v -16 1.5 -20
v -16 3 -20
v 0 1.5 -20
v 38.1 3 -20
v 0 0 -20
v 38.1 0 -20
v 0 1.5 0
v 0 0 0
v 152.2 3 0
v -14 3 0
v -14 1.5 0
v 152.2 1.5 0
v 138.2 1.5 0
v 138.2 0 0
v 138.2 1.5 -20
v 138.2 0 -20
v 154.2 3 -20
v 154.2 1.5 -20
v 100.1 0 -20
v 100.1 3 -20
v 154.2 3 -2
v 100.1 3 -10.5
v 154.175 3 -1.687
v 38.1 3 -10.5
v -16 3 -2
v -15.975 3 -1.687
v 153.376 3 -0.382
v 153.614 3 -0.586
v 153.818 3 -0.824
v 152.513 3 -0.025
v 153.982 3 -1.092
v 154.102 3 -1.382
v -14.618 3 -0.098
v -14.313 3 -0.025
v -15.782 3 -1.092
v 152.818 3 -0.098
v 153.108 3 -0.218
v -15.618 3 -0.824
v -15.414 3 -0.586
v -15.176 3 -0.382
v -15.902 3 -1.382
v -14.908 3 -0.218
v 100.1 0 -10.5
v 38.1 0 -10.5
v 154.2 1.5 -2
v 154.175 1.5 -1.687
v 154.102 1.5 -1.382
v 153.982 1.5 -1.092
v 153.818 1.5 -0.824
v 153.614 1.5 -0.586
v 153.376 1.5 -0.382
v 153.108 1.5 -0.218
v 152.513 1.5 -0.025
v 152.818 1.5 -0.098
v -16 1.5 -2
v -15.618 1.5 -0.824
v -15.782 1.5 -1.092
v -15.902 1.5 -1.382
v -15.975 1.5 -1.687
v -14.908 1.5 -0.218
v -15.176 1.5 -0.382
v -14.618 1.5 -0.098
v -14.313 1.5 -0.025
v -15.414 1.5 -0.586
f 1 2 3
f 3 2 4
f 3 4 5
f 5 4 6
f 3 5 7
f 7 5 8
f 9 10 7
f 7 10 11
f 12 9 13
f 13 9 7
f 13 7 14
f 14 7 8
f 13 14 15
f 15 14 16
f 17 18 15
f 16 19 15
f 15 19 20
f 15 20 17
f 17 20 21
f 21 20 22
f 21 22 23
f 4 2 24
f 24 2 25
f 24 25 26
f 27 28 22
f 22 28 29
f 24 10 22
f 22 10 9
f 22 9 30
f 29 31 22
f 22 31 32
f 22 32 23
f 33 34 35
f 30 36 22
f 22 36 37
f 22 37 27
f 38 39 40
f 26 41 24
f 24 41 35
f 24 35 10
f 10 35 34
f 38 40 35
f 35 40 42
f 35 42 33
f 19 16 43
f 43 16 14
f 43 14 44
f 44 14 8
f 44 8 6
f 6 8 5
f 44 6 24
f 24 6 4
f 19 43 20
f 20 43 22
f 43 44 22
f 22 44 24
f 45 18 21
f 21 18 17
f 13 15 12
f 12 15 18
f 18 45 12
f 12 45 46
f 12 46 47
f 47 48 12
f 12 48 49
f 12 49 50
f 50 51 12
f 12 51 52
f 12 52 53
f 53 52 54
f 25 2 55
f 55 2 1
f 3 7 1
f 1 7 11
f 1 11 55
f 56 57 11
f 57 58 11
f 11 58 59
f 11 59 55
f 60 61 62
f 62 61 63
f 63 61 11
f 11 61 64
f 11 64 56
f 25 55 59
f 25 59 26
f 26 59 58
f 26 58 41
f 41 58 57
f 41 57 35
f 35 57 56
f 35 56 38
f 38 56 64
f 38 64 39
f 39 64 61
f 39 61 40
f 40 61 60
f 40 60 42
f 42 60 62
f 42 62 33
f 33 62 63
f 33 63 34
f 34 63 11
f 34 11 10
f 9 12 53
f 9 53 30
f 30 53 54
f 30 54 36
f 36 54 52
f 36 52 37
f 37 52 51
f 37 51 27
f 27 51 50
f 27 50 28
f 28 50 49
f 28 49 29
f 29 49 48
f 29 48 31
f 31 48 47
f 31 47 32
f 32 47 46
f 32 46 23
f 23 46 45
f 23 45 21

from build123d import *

# Parameters (mm, degrees)
SKETCH_1_W          = 138.2
SKETCH_1_H          = 20
EXTRUDE_1_DEPTH     = 3
SKETCH_2_W          = 62
SKETCH_2_H          = 9.5
CUT_EXTRUDE_1_DEPTH = 3
SKETCH_3_W          = 16
SKETCH_3_H          = 20
EXTRUDE_2_DEPTH     = 1.5
FILLET_1_R          = 2


with BuildPart() as part:
    # 草图1 → 凸台-拉伸1 (new body)
    with BuildSketch(Plane(origin=(0, 0, 0), x_dir=(1, 0, 0), z_dir=(0, 1, 0))):
        with Locations((69.1, 10)):
            Rectangle(SKETCH_1_W, SKETCH_1_H)
    extrude(amount=EXTRUDE_1_DEPTH)

    # 草图2 → 切除-拉伸1 (cut)
    with BuildSketch(Plane(origin=(0, 3, 0), x_dir=(1, 0, 0), z_dir=(0, 1, 0))):
        with Locations((69.1, 15.25)):
            Rectangle(SKETCH_2_W, SKETCH_2_H)
    extrude(amount=-CUT_EXTRUDE_1_DEPTH, mode=Mode.SUBTRACT)

    # 草图3 → 凸台-拉伸2 (add)
    with BuildSketch(Plane(origin=(0, 3, 0), x_dir=(1, 0, 0), z_dir=(0, 1, 0))):
        with Locations((146.2, 10)):
            Rectangle(SKETCH_3_W, SKETCH_3_H)
        with Locations((-8, 10)):
            Rectangle(SKETCH_3_W, SKETCH_3_H)
    extrude(amount=-EXTRUDE_2_DEPTH)

    # 圆角1
    fillet_1_edges = [part.edges().sort_by_distance(p)[0] for p in [
        (154.2, 2.25, 0),
        (-16, 2.25, 0),
    ]]
    fillet(fillet_1_edges, radius=FILLET_1_R)


solid = part.part
